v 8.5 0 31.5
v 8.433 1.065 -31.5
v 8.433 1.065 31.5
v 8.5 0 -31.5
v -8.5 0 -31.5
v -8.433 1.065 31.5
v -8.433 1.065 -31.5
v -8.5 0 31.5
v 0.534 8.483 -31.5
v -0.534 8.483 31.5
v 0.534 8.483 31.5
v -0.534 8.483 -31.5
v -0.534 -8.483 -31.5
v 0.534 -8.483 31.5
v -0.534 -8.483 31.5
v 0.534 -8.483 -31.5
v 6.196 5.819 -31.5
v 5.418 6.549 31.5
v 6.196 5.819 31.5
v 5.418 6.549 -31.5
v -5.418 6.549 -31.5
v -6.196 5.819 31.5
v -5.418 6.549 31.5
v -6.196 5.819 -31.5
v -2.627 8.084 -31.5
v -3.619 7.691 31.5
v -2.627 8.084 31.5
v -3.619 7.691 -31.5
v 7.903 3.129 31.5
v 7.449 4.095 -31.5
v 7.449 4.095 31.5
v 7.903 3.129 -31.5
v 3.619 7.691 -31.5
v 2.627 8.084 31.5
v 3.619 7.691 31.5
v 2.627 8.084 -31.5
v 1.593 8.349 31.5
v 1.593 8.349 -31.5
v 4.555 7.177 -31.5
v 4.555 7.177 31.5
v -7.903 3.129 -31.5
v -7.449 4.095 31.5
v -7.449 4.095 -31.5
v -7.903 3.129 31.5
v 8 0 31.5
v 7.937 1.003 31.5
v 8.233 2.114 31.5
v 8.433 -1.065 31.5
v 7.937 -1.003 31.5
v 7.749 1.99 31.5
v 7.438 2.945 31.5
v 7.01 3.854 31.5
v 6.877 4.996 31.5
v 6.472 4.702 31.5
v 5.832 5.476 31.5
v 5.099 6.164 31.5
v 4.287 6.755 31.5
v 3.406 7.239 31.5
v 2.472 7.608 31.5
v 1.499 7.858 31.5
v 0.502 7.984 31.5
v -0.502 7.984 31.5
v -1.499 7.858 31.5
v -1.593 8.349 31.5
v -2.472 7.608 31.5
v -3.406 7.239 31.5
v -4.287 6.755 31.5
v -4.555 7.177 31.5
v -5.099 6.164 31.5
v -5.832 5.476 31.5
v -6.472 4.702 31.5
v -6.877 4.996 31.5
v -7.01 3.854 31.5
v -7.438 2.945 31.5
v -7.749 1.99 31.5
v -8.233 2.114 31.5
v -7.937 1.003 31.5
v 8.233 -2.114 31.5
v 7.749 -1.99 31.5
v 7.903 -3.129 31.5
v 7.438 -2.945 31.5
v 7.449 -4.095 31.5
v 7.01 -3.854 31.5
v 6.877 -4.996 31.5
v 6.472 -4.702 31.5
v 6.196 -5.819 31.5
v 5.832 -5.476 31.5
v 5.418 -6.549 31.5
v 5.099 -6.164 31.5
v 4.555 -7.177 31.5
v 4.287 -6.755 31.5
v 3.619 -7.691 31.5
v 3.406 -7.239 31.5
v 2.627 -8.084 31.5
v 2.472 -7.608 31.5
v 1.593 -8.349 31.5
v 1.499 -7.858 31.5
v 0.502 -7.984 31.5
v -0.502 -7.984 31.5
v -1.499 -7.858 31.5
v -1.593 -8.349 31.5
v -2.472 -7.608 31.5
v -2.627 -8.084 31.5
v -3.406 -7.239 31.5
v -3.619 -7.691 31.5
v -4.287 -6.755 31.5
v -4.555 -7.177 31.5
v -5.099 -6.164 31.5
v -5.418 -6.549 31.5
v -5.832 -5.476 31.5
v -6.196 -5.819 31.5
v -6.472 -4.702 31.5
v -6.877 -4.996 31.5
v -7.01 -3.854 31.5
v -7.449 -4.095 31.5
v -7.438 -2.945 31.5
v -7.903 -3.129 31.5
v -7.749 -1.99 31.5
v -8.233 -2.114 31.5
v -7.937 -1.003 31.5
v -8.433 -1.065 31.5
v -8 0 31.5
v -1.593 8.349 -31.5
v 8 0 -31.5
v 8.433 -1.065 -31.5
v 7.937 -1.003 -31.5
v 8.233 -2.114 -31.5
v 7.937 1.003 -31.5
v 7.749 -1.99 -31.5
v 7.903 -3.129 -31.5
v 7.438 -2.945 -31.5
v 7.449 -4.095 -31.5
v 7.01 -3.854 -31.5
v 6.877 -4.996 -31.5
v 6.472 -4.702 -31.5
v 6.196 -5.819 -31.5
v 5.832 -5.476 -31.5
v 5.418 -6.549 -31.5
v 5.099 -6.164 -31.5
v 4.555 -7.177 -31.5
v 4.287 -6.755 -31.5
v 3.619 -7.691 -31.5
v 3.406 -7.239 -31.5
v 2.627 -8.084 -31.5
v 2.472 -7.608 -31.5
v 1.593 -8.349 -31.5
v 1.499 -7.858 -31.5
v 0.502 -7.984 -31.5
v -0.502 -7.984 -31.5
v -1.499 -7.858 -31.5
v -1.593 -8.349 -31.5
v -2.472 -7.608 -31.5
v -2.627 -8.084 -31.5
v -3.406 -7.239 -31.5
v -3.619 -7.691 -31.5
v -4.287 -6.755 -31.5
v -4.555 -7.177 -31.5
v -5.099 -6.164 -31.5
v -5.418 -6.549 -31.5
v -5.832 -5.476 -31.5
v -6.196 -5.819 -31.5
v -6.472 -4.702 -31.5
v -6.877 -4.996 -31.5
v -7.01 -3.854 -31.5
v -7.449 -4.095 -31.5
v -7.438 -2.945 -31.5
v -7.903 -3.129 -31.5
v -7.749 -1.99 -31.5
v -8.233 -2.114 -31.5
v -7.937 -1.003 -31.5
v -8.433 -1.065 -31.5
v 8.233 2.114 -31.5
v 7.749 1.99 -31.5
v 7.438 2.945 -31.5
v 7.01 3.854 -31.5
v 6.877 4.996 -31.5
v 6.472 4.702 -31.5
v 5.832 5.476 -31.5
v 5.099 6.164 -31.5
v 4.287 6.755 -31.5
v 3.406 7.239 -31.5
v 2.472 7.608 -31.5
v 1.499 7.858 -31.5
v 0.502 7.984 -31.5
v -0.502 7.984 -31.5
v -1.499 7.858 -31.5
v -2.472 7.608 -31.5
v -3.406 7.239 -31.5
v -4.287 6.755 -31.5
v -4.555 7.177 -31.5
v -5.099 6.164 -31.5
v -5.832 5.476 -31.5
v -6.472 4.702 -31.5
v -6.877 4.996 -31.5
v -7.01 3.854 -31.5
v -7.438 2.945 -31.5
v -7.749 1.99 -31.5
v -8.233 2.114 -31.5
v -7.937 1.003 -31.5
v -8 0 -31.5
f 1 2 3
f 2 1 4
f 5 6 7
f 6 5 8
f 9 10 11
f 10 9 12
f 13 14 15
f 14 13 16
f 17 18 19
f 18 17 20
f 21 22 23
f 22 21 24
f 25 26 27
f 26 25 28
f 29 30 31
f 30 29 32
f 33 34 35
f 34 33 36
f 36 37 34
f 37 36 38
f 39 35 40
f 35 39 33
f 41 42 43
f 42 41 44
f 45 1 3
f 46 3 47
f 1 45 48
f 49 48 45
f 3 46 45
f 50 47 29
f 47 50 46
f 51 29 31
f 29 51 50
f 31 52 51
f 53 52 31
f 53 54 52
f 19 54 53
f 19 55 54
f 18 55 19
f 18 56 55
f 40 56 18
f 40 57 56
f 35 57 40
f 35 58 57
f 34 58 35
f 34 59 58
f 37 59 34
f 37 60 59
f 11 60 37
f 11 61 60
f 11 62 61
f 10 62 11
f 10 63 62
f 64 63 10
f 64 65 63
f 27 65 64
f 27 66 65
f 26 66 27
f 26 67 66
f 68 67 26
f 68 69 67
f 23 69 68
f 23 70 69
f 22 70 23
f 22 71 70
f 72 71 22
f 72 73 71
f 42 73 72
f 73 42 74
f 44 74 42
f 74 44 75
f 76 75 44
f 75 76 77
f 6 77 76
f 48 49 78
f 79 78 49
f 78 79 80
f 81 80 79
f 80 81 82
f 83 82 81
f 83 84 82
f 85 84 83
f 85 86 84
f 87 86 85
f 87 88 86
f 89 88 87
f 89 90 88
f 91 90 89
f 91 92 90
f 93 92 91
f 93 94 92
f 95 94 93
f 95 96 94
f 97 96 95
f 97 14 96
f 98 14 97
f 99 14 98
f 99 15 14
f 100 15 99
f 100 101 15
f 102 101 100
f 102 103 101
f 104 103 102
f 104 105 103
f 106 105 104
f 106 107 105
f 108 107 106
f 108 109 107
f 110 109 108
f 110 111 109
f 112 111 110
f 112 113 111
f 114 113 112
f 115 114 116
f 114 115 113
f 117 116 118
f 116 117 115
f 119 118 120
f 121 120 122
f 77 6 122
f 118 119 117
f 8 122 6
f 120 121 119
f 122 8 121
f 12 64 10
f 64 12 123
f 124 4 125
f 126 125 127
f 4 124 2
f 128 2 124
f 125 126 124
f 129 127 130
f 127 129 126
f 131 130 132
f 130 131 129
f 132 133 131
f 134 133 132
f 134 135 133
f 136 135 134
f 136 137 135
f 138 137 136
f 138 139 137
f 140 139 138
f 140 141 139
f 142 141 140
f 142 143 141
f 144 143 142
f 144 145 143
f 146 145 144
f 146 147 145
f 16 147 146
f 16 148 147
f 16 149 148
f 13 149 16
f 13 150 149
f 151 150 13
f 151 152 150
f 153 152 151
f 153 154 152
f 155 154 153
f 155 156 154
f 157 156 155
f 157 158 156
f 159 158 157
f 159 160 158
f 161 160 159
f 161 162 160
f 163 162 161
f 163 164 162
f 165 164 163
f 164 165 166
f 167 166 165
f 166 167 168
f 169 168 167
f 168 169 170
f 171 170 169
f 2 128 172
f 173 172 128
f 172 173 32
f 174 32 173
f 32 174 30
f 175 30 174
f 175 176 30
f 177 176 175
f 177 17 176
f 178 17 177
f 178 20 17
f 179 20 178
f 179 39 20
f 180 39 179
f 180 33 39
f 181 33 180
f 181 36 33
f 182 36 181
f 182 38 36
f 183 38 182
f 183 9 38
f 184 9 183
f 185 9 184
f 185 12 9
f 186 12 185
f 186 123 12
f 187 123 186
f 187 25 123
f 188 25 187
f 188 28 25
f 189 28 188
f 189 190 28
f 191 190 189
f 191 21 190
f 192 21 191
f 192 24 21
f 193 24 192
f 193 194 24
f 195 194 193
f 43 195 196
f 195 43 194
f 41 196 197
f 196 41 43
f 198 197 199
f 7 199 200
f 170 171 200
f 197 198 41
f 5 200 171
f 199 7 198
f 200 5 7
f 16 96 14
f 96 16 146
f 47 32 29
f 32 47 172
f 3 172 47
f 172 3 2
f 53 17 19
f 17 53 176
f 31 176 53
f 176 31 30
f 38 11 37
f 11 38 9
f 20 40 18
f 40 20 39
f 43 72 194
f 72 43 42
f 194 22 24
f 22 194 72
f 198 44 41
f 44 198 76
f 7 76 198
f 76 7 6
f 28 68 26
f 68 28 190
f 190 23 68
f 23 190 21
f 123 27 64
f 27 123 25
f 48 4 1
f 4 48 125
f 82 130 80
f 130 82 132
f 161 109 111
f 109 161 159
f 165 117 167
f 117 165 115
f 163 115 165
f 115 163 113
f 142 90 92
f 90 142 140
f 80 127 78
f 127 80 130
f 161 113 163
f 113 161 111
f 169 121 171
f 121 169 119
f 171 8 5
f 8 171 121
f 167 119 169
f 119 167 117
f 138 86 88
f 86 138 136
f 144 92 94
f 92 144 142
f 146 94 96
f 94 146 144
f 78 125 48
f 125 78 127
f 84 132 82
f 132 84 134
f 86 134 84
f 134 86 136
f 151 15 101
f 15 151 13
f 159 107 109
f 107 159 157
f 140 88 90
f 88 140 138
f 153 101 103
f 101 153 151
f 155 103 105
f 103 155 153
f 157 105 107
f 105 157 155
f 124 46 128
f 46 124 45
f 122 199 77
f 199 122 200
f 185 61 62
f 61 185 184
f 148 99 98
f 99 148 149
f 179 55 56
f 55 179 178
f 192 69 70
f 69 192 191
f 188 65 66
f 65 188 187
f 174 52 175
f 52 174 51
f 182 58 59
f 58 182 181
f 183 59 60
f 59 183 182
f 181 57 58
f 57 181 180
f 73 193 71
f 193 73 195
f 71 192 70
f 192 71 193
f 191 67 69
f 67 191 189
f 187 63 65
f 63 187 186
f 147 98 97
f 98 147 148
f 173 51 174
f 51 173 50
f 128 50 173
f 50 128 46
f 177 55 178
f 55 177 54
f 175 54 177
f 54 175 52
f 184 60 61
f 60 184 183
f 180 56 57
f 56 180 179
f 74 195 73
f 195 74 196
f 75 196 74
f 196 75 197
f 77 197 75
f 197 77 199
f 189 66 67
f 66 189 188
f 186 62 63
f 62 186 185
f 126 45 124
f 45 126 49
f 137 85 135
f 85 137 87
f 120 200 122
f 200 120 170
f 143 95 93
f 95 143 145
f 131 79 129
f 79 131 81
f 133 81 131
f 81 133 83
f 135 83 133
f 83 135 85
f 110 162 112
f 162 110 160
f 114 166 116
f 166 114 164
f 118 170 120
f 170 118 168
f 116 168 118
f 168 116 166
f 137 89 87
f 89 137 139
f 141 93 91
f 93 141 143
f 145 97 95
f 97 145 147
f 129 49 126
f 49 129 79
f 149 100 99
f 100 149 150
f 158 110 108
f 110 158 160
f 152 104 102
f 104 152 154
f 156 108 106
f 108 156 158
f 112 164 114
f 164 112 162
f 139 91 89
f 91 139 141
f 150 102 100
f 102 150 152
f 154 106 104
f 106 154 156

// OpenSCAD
$fn = 50;


difference() {
	union() {
		translate(v = [0, 0, -31.5000000000]) {
			cylinder(h = 63, r = 8.5000000000);
		}
	}
	union() {
		translate(v = [0, 0, -100.0000000000]) {
			cylinder(h = 200, r = 8);
		}
	}
}
